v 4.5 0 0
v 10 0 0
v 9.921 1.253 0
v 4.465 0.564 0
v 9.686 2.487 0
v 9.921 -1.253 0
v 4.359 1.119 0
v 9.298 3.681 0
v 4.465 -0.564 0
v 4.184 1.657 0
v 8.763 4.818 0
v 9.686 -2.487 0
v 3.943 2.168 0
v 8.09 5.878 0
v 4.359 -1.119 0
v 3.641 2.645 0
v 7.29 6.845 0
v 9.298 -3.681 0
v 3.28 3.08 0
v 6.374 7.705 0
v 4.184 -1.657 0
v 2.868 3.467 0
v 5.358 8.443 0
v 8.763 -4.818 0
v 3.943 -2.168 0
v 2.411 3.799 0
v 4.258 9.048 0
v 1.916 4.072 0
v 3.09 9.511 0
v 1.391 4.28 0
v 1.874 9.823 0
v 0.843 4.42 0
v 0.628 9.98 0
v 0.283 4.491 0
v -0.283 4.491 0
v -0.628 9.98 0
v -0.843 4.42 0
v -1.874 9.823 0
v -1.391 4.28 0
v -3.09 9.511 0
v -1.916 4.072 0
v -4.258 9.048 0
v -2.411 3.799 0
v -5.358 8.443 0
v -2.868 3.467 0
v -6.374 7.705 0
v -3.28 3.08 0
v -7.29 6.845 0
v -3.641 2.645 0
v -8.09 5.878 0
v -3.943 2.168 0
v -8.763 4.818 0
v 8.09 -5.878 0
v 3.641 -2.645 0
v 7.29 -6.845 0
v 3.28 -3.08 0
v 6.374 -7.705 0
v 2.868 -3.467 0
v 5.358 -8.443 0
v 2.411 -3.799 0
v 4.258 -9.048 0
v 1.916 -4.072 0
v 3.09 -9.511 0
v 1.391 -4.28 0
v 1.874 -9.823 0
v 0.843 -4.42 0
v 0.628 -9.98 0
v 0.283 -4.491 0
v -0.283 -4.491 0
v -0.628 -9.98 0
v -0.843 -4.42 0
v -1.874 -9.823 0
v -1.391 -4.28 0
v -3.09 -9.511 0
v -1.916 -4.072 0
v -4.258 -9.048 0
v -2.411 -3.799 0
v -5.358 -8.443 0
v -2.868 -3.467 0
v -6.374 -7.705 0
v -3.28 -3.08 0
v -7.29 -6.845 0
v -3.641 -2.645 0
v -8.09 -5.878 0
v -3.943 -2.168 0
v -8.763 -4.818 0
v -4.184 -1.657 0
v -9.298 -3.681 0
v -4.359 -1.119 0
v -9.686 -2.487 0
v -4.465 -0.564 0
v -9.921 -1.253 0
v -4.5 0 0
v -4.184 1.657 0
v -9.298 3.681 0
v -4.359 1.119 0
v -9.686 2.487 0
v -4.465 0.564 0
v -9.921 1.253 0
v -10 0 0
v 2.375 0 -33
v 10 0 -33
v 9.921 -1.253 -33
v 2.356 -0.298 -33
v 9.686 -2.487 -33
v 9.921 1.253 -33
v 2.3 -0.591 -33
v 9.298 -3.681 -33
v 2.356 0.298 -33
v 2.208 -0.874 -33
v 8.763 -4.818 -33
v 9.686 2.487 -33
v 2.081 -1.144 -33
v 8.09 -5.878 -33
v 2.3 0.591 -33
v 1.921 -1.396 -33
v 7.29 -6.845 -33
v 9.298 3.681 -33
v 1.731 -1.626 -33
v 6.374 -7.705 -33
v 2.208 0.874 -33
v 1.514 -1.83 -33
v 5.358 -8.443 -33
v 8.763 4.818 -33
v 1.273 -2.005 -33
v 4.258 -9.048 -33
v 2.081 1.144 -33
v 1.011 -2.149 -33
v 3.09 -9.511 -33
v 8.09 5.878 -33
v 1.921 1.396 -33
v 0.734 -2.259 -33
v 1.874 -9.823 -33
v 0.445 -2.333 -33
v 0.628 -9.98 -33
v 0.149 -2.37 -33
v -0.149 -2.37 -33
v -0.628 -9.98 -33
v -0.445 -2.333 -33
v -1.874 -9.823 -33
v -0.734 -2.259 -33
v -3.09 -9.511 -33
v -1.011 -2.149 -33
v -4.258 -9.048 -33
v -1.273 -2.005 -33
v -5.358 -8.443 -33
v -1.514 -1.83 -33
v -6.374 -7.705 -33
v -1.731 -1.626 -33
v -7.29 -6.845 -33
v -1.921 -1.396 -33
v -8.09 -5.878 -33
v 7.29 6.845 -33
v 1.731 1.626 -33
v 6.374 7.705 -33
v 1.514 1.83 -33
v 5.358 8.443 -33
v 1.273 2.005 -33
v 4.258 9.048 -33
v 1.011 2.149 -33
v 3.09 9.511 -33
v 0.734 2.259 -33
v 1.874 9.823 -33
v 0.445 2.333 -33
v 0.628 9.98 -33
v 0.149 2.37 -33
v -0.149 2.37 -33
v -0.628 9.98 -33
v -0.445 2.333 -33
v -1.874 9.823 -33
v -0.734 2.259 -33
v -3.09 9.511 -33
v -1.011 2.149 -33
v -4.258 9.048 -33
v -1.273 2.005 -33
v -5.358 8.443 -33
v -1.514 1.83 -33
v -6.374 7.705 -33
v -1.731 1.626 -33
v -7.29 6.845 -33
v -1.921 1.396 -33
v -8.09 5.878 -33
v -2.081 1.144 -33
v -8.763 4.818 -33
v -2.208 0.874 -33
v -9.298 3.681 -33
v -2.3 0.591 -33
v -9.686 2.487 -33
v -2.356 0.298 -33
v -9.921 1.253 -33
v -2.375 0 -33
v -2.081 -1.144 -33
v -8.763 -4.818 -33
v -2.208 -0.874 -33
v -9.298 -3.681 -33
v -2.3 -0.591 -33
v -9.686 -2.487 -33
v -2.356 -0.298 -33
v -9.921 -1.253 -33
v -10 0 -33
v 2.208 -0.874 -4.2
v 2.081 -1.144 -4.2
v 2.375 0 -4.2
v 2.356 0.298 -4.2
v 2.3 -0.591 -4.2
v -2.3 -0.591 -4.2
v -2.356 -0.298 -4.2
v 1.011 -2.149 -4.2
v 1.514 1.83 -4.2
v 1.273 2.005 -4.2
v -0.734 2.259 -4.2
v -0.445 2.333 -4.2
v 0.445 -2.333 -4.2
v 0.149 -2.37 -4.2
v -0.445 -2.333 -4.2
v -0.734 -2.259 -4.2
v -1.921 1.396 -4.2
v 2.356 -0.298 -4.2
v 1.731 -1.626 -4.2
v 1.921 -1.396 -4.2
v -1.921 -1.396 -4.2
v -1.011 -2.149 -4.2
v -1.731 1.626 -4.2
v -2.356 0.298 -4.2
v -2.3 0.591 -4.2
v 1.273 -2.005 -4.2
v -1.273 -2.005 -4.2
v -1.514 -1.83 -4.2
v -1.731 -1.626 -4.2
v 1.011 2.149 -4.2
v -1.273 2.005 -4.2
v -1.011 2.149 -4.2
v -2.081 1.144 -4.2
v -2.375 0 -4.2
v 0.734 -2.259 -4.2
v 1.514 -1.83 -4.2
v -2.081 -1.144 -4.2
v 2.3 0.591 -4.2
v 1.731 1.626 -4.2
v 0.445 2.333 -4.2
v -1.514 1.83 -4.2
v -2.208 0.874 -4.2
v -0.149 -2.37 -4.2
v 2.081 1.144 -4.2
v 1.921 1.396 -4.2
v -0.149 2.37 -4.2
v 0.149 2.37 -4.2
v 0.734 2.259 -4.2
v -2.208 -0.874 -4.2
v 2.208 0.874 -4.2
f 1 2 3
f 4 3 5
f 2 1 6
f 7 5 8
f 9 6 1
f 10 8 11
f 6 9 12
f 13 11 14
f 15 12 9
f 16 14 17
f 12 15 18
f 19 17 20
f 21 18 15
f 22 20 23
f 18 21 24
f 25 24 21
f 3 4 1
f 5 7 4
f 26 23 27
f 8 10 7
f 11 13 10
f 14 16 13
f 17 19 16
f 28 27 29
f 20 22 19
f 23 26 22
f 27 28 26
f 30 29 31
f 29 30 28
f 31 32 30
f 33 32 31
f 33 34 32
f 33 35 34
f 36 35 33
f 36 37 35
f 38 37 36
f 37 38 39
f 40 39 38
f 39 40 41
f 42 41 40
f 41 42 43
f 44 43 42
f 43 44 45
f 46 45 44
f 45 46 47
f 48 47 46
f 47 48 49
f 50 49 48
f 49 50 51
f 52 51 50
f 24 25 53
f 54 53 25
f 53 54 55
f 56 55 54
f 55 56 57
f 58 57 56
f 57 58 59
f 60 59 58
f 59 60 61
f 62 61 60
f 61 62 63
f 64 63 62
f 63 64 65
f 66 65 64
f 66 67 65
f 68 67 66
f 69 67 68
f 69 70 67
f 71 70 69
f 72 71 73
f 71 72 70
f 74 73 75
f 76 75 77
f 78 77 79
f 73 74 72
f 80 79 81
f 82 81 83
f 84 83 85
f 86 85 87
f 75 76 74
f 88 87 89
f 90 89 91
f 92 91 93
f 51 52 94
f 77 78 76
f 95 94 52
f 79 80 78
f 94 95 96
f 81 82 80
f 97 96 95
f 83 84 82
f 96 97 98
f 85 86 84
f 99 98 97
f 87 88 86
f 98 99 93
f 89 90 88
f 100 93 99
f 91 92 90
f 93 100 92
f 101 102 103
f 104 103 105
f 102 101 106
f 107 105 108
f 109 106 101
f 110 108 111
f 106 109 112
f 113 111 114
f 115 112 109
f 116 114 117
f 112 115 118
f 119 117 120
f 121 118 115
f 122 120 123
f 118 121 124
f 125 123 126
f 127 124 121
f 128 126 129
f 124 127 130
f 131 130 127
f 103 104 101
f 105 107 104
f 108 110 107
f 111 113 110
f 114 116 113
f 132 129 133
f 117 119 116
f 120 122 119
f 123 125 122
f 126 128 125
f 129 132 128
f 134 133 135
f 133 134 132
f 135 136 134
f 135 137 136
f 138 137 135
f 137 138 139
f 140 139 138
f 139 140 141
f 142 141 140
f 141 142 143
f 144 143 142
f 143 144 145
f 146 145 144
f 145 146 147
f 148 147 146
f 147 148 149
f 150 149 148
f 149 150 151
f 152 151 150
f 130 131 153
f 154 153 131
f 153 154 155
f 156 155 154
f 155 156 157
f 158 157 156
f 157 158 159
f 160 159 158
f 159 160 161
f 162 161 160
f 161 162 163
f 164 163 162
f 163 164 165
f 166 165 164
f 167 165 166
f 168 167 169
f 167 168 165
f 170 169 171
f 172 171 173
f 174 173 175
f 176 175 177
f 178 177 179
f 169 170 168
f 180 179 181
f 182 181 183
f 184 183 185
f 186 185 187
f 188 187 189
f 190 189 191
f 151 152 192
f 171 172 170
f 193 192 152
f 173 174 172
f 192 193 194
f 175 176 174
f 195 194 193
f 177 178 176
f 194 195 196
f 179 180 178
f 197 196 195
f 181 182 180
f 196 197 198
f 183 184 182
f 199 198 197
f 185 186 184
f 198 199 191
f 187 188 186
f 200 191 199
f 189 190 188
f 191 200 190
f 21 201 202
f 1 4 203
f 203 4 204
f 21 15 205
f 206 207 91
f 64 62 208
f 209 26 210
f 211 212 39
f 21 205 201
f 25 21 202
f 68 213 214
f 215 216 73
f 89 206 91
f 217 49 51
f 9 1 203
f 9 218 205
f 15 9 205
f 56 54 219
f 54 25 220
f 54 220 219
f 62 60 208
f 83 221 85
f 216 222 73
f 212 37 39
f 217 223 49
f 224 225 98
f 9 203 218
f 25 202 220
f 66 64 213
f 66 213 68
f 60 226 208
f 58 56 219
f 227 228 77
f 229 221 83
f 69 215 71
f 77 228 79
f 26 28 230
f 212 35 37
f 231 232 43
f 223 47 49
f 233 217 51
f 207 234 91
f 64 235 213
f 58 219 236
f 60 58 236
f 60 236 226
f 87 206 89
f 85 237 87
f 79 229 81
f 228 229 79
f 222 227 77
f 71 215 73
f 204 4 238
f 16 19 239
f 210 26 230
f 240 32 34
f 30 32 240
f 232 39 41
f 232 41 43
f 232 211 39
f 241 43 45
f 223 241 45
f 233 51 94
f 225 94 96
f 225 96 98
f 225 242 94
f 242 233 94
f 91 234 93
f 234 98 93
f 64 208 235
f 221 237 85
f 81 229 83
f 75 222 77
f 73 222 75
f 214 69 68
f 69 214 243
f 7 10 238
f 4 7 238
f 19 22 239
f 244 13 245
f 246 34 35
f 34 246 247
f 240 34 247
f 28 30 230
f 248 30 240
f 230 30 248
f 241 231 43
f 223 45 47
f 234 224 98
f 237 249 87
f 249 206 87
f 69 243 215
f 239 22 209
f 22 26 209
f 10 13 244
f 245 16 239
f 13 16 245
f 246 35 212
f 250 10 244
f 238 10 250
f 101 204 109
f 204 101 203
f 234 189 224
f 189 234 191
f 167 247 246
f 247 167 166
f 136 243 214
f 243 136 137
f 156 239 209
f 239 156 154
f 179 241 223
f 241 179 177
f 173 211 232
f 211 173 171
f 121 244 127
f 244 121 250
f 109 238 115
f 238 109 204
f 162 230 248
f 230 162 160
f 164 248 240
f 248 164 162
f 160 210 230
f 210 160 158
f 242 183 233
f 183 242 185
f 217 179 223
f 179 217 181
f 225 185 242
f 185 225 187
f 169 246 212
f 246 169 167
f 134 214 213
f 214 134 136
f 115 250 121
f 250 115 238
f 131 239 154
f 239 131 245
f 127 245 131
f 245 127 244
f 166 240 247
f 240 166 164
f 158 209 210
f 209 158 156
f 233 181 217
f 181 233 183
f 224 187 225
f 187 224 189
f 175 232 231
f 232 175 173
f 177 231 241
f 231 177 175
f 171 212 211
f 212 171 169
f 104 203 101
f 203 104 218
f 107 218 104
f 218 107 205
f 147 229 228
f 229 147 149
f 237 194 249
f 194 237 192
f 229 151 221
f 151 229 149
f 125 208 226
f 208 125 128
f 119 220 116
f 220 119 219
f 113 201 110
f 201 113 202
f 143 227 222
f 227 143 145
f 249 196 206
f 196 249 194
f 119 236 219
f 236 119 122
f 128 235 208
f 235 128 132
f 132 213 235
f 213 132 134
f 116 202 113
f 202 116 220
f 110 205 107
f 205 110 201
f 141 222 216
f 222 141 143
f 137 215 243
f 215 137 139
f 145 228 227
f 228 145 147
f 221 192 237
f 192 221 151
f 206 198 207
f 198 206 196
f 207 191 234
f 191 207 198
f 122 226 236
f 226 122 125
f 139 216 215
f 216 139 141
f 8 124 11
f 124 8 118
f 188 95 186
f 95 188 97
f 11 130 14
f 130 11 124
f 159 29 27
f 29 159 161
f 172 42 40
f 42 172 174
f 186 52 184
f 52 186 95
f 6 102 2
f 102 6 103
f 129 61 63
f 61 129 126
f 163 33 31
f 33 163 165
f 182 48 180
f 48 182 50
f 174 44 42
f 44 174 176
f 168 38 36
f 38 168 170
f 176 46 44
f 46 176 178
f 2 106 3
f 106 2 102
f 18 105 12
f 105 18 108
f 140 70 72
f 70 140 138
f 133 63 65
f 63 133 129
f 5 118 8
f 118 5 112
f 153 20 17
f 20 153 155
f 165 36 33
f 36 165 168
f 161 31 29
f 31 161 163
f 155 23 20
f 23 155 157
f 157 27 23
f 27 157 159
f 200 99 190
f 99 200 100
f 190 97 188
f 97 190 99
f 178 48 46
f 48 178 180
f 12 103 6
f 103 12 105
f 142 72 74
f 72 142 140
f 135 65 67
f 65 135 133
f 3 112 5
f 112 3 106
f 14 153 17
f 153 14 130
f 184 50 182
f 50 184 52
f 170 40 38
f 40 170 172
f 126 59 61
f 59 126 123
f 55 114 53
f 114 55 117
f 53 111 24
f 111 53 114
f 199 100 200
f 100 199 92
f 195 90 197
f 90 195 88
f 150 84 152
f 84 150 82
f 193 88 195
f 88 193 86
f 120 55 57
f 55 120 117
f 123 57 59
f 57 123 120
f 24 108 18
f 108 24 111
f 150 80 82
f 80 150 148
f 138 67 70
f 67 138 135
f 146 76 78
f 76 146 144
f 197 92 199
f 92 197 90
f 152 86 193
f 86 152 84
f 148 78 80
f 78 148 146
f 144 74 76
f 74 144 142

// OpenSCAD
$fn = 50;


difference() {
	union() {
		translate(v = [0, 0, -33.0000000000]) {
			cylinder(h = 33, r = 10.0000000000);
		}
	}
	union() {
		translate(v = [0, 0, 0]) {
			rotate(a = [0, 0, 0]) {
				difference() {
					union() {
						#translate(v = [0, 0, -33.0000000000]) {
							cylinder(h = 33, r = 2.2500000000);
						}
						#translate(v = [0, 0, -4.2000000000]) {
							cylinder(h = 4.2000000000, r1 = 2.3750000000, r2 = 4.5000000000);
						}
						#translate(v = [0, 0, -33.0000000000]) {
							cylinder(h = 33, r = 2.3750000000);
						}
						#translate(v = [0, 0, -33.0000000000]) {
							cylinder(h = 33, r = 2.2500000000);
						}
					}
					union();
				}
			}
		}
	}
}
